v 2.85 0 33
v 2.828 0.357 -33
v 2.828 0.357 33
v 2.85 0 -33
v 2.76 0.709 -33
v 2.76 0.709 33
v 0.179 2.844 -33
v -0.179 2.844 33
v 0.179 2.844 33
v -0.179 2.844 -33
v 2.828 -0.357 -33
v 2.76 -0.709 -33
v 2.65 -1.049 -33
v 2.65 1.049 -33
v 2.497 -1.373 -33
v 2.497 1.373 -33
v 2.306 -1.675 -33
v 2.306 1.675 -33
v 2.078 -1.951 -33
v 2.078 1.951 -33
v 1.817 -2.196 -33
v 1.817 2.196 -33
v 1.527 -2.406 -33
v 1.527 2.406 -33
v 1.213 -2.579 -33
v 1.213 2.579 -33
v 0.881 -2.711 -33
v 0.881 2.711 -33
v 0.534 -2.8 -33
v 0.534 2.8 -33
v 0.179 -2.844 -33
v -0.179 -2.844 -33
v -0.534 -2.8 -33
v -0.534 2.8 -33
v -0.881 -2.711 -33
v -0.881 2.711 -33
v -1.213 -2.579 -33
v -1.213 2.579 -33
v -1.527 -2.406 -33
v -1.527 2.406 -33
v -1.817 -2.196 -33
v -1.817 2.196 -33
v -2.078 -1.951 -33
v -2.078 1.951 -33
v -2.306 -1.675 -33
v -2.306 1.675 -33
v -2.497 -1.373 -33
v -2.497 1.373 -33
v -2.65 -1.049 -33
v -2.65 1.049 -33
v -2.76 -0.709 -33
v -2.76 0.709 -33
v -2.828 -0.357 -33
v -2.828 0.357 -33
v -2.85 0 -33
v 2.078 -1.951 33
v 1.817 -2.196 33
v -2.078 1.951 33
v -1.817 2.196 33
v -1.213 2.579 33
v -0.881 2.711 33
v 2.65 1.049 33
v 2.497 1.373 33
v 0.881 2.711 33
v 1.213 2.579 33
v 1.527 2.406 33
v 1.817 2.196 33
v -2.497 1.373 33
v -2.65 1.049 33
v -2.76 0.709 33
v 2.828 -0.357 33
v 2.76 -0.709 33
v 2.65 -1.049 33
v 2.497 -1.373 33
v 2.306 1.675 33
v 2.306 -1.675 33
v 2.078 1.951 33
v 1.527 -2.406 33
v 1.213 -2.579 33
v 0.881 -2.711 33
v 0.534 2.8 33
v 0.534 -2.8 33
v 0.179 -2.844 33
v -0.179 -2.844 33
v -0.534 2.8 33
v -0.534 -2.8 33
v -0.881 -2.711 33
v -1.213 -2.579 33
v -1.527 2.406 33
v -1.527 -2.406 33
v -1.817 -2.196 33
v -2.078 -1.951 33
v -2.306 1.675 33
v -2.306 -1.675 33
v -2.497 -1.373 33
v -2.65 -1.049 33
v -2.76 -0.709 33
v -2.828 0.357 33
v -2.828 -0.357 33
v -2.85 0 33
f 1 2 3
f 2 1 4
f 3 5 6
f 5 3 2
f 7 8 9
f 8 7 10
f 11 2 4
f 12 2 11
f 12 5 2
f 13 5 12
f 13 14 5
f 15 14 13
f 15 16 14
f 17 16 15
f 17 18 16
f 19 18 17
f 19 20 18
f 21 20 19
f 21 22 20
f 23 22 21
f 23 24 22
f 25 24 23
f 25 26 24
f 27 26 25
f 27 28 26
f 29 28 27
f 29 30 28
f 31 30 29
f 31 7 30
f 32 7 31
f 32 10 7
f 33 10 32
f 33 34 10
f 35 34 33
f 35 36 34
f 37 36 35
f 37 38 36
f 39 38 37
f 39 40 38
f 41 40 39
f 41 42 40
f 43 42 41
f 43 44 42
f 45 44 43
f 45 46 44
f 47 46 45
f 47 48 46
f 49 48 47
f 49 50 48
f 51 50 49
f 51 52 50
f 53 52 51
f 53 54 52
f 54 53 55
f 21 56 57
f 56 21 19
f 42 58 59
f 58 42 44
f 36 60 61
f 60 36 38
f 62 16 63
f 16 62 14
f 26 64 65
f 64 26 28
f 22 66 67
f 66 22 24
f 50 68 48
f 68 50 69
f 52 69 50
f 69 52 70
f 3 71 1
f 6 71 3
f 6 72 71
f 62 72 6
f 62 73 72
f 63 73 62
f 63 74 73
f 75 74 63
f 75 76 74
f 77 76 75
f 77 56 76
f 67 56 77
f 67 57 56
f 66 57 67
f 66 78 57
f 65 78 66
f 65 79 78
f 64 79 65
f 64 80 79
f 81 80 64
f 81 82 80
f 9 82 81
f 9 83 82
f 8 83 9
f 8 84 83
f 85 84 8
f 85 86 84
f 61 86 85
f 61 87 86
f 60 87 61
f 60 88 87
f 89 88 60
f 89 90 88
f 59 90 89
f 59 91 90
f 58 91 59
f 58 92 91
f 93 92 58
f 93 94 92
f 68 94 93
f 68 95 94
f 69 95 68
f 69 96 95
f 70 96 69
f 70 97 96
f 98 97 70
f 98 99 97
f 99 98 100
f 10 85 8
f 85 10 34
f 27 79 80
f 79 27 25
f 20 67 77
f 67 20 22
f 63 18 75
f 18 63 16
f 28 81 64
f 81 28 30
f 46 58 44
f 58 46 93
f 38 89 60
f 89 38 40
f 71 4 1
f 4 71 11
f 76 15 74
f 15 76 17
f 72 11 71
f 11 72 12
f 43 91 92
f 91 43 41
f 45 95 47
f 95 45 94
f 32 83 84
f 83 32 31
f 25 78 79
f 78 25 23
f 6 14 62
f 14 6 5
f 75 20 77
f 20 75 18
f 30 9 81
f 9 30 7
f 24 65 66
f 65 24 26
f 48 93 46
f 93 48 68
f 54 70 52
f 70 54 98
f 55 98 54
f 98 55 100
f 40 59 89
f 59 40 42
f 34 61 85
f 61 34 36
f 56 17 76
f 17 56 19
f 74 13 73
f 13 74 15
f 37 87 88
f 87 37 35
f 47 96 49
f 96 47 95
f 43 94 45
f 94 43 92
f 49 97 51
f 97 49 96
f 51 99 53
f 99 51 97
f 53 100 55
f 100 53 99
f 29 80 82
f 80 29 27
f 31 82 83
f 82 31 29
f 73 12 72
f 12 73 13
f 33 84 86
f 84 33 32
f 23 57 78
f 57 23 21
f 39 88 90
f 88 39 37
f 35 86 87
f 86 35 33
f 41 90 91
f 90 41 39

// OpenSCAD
$fn = 50;


difference() {
	union() {
		translate(v = [0, 0, -33.0000000000]) {
			cylinder(h = 66, r = 2.8500000000);
		}
	}
	union() {
		translate(v = [0, 0, -100.0000000000]) {
			cylinder(h = 200, r = 0);
		}
	}
}
